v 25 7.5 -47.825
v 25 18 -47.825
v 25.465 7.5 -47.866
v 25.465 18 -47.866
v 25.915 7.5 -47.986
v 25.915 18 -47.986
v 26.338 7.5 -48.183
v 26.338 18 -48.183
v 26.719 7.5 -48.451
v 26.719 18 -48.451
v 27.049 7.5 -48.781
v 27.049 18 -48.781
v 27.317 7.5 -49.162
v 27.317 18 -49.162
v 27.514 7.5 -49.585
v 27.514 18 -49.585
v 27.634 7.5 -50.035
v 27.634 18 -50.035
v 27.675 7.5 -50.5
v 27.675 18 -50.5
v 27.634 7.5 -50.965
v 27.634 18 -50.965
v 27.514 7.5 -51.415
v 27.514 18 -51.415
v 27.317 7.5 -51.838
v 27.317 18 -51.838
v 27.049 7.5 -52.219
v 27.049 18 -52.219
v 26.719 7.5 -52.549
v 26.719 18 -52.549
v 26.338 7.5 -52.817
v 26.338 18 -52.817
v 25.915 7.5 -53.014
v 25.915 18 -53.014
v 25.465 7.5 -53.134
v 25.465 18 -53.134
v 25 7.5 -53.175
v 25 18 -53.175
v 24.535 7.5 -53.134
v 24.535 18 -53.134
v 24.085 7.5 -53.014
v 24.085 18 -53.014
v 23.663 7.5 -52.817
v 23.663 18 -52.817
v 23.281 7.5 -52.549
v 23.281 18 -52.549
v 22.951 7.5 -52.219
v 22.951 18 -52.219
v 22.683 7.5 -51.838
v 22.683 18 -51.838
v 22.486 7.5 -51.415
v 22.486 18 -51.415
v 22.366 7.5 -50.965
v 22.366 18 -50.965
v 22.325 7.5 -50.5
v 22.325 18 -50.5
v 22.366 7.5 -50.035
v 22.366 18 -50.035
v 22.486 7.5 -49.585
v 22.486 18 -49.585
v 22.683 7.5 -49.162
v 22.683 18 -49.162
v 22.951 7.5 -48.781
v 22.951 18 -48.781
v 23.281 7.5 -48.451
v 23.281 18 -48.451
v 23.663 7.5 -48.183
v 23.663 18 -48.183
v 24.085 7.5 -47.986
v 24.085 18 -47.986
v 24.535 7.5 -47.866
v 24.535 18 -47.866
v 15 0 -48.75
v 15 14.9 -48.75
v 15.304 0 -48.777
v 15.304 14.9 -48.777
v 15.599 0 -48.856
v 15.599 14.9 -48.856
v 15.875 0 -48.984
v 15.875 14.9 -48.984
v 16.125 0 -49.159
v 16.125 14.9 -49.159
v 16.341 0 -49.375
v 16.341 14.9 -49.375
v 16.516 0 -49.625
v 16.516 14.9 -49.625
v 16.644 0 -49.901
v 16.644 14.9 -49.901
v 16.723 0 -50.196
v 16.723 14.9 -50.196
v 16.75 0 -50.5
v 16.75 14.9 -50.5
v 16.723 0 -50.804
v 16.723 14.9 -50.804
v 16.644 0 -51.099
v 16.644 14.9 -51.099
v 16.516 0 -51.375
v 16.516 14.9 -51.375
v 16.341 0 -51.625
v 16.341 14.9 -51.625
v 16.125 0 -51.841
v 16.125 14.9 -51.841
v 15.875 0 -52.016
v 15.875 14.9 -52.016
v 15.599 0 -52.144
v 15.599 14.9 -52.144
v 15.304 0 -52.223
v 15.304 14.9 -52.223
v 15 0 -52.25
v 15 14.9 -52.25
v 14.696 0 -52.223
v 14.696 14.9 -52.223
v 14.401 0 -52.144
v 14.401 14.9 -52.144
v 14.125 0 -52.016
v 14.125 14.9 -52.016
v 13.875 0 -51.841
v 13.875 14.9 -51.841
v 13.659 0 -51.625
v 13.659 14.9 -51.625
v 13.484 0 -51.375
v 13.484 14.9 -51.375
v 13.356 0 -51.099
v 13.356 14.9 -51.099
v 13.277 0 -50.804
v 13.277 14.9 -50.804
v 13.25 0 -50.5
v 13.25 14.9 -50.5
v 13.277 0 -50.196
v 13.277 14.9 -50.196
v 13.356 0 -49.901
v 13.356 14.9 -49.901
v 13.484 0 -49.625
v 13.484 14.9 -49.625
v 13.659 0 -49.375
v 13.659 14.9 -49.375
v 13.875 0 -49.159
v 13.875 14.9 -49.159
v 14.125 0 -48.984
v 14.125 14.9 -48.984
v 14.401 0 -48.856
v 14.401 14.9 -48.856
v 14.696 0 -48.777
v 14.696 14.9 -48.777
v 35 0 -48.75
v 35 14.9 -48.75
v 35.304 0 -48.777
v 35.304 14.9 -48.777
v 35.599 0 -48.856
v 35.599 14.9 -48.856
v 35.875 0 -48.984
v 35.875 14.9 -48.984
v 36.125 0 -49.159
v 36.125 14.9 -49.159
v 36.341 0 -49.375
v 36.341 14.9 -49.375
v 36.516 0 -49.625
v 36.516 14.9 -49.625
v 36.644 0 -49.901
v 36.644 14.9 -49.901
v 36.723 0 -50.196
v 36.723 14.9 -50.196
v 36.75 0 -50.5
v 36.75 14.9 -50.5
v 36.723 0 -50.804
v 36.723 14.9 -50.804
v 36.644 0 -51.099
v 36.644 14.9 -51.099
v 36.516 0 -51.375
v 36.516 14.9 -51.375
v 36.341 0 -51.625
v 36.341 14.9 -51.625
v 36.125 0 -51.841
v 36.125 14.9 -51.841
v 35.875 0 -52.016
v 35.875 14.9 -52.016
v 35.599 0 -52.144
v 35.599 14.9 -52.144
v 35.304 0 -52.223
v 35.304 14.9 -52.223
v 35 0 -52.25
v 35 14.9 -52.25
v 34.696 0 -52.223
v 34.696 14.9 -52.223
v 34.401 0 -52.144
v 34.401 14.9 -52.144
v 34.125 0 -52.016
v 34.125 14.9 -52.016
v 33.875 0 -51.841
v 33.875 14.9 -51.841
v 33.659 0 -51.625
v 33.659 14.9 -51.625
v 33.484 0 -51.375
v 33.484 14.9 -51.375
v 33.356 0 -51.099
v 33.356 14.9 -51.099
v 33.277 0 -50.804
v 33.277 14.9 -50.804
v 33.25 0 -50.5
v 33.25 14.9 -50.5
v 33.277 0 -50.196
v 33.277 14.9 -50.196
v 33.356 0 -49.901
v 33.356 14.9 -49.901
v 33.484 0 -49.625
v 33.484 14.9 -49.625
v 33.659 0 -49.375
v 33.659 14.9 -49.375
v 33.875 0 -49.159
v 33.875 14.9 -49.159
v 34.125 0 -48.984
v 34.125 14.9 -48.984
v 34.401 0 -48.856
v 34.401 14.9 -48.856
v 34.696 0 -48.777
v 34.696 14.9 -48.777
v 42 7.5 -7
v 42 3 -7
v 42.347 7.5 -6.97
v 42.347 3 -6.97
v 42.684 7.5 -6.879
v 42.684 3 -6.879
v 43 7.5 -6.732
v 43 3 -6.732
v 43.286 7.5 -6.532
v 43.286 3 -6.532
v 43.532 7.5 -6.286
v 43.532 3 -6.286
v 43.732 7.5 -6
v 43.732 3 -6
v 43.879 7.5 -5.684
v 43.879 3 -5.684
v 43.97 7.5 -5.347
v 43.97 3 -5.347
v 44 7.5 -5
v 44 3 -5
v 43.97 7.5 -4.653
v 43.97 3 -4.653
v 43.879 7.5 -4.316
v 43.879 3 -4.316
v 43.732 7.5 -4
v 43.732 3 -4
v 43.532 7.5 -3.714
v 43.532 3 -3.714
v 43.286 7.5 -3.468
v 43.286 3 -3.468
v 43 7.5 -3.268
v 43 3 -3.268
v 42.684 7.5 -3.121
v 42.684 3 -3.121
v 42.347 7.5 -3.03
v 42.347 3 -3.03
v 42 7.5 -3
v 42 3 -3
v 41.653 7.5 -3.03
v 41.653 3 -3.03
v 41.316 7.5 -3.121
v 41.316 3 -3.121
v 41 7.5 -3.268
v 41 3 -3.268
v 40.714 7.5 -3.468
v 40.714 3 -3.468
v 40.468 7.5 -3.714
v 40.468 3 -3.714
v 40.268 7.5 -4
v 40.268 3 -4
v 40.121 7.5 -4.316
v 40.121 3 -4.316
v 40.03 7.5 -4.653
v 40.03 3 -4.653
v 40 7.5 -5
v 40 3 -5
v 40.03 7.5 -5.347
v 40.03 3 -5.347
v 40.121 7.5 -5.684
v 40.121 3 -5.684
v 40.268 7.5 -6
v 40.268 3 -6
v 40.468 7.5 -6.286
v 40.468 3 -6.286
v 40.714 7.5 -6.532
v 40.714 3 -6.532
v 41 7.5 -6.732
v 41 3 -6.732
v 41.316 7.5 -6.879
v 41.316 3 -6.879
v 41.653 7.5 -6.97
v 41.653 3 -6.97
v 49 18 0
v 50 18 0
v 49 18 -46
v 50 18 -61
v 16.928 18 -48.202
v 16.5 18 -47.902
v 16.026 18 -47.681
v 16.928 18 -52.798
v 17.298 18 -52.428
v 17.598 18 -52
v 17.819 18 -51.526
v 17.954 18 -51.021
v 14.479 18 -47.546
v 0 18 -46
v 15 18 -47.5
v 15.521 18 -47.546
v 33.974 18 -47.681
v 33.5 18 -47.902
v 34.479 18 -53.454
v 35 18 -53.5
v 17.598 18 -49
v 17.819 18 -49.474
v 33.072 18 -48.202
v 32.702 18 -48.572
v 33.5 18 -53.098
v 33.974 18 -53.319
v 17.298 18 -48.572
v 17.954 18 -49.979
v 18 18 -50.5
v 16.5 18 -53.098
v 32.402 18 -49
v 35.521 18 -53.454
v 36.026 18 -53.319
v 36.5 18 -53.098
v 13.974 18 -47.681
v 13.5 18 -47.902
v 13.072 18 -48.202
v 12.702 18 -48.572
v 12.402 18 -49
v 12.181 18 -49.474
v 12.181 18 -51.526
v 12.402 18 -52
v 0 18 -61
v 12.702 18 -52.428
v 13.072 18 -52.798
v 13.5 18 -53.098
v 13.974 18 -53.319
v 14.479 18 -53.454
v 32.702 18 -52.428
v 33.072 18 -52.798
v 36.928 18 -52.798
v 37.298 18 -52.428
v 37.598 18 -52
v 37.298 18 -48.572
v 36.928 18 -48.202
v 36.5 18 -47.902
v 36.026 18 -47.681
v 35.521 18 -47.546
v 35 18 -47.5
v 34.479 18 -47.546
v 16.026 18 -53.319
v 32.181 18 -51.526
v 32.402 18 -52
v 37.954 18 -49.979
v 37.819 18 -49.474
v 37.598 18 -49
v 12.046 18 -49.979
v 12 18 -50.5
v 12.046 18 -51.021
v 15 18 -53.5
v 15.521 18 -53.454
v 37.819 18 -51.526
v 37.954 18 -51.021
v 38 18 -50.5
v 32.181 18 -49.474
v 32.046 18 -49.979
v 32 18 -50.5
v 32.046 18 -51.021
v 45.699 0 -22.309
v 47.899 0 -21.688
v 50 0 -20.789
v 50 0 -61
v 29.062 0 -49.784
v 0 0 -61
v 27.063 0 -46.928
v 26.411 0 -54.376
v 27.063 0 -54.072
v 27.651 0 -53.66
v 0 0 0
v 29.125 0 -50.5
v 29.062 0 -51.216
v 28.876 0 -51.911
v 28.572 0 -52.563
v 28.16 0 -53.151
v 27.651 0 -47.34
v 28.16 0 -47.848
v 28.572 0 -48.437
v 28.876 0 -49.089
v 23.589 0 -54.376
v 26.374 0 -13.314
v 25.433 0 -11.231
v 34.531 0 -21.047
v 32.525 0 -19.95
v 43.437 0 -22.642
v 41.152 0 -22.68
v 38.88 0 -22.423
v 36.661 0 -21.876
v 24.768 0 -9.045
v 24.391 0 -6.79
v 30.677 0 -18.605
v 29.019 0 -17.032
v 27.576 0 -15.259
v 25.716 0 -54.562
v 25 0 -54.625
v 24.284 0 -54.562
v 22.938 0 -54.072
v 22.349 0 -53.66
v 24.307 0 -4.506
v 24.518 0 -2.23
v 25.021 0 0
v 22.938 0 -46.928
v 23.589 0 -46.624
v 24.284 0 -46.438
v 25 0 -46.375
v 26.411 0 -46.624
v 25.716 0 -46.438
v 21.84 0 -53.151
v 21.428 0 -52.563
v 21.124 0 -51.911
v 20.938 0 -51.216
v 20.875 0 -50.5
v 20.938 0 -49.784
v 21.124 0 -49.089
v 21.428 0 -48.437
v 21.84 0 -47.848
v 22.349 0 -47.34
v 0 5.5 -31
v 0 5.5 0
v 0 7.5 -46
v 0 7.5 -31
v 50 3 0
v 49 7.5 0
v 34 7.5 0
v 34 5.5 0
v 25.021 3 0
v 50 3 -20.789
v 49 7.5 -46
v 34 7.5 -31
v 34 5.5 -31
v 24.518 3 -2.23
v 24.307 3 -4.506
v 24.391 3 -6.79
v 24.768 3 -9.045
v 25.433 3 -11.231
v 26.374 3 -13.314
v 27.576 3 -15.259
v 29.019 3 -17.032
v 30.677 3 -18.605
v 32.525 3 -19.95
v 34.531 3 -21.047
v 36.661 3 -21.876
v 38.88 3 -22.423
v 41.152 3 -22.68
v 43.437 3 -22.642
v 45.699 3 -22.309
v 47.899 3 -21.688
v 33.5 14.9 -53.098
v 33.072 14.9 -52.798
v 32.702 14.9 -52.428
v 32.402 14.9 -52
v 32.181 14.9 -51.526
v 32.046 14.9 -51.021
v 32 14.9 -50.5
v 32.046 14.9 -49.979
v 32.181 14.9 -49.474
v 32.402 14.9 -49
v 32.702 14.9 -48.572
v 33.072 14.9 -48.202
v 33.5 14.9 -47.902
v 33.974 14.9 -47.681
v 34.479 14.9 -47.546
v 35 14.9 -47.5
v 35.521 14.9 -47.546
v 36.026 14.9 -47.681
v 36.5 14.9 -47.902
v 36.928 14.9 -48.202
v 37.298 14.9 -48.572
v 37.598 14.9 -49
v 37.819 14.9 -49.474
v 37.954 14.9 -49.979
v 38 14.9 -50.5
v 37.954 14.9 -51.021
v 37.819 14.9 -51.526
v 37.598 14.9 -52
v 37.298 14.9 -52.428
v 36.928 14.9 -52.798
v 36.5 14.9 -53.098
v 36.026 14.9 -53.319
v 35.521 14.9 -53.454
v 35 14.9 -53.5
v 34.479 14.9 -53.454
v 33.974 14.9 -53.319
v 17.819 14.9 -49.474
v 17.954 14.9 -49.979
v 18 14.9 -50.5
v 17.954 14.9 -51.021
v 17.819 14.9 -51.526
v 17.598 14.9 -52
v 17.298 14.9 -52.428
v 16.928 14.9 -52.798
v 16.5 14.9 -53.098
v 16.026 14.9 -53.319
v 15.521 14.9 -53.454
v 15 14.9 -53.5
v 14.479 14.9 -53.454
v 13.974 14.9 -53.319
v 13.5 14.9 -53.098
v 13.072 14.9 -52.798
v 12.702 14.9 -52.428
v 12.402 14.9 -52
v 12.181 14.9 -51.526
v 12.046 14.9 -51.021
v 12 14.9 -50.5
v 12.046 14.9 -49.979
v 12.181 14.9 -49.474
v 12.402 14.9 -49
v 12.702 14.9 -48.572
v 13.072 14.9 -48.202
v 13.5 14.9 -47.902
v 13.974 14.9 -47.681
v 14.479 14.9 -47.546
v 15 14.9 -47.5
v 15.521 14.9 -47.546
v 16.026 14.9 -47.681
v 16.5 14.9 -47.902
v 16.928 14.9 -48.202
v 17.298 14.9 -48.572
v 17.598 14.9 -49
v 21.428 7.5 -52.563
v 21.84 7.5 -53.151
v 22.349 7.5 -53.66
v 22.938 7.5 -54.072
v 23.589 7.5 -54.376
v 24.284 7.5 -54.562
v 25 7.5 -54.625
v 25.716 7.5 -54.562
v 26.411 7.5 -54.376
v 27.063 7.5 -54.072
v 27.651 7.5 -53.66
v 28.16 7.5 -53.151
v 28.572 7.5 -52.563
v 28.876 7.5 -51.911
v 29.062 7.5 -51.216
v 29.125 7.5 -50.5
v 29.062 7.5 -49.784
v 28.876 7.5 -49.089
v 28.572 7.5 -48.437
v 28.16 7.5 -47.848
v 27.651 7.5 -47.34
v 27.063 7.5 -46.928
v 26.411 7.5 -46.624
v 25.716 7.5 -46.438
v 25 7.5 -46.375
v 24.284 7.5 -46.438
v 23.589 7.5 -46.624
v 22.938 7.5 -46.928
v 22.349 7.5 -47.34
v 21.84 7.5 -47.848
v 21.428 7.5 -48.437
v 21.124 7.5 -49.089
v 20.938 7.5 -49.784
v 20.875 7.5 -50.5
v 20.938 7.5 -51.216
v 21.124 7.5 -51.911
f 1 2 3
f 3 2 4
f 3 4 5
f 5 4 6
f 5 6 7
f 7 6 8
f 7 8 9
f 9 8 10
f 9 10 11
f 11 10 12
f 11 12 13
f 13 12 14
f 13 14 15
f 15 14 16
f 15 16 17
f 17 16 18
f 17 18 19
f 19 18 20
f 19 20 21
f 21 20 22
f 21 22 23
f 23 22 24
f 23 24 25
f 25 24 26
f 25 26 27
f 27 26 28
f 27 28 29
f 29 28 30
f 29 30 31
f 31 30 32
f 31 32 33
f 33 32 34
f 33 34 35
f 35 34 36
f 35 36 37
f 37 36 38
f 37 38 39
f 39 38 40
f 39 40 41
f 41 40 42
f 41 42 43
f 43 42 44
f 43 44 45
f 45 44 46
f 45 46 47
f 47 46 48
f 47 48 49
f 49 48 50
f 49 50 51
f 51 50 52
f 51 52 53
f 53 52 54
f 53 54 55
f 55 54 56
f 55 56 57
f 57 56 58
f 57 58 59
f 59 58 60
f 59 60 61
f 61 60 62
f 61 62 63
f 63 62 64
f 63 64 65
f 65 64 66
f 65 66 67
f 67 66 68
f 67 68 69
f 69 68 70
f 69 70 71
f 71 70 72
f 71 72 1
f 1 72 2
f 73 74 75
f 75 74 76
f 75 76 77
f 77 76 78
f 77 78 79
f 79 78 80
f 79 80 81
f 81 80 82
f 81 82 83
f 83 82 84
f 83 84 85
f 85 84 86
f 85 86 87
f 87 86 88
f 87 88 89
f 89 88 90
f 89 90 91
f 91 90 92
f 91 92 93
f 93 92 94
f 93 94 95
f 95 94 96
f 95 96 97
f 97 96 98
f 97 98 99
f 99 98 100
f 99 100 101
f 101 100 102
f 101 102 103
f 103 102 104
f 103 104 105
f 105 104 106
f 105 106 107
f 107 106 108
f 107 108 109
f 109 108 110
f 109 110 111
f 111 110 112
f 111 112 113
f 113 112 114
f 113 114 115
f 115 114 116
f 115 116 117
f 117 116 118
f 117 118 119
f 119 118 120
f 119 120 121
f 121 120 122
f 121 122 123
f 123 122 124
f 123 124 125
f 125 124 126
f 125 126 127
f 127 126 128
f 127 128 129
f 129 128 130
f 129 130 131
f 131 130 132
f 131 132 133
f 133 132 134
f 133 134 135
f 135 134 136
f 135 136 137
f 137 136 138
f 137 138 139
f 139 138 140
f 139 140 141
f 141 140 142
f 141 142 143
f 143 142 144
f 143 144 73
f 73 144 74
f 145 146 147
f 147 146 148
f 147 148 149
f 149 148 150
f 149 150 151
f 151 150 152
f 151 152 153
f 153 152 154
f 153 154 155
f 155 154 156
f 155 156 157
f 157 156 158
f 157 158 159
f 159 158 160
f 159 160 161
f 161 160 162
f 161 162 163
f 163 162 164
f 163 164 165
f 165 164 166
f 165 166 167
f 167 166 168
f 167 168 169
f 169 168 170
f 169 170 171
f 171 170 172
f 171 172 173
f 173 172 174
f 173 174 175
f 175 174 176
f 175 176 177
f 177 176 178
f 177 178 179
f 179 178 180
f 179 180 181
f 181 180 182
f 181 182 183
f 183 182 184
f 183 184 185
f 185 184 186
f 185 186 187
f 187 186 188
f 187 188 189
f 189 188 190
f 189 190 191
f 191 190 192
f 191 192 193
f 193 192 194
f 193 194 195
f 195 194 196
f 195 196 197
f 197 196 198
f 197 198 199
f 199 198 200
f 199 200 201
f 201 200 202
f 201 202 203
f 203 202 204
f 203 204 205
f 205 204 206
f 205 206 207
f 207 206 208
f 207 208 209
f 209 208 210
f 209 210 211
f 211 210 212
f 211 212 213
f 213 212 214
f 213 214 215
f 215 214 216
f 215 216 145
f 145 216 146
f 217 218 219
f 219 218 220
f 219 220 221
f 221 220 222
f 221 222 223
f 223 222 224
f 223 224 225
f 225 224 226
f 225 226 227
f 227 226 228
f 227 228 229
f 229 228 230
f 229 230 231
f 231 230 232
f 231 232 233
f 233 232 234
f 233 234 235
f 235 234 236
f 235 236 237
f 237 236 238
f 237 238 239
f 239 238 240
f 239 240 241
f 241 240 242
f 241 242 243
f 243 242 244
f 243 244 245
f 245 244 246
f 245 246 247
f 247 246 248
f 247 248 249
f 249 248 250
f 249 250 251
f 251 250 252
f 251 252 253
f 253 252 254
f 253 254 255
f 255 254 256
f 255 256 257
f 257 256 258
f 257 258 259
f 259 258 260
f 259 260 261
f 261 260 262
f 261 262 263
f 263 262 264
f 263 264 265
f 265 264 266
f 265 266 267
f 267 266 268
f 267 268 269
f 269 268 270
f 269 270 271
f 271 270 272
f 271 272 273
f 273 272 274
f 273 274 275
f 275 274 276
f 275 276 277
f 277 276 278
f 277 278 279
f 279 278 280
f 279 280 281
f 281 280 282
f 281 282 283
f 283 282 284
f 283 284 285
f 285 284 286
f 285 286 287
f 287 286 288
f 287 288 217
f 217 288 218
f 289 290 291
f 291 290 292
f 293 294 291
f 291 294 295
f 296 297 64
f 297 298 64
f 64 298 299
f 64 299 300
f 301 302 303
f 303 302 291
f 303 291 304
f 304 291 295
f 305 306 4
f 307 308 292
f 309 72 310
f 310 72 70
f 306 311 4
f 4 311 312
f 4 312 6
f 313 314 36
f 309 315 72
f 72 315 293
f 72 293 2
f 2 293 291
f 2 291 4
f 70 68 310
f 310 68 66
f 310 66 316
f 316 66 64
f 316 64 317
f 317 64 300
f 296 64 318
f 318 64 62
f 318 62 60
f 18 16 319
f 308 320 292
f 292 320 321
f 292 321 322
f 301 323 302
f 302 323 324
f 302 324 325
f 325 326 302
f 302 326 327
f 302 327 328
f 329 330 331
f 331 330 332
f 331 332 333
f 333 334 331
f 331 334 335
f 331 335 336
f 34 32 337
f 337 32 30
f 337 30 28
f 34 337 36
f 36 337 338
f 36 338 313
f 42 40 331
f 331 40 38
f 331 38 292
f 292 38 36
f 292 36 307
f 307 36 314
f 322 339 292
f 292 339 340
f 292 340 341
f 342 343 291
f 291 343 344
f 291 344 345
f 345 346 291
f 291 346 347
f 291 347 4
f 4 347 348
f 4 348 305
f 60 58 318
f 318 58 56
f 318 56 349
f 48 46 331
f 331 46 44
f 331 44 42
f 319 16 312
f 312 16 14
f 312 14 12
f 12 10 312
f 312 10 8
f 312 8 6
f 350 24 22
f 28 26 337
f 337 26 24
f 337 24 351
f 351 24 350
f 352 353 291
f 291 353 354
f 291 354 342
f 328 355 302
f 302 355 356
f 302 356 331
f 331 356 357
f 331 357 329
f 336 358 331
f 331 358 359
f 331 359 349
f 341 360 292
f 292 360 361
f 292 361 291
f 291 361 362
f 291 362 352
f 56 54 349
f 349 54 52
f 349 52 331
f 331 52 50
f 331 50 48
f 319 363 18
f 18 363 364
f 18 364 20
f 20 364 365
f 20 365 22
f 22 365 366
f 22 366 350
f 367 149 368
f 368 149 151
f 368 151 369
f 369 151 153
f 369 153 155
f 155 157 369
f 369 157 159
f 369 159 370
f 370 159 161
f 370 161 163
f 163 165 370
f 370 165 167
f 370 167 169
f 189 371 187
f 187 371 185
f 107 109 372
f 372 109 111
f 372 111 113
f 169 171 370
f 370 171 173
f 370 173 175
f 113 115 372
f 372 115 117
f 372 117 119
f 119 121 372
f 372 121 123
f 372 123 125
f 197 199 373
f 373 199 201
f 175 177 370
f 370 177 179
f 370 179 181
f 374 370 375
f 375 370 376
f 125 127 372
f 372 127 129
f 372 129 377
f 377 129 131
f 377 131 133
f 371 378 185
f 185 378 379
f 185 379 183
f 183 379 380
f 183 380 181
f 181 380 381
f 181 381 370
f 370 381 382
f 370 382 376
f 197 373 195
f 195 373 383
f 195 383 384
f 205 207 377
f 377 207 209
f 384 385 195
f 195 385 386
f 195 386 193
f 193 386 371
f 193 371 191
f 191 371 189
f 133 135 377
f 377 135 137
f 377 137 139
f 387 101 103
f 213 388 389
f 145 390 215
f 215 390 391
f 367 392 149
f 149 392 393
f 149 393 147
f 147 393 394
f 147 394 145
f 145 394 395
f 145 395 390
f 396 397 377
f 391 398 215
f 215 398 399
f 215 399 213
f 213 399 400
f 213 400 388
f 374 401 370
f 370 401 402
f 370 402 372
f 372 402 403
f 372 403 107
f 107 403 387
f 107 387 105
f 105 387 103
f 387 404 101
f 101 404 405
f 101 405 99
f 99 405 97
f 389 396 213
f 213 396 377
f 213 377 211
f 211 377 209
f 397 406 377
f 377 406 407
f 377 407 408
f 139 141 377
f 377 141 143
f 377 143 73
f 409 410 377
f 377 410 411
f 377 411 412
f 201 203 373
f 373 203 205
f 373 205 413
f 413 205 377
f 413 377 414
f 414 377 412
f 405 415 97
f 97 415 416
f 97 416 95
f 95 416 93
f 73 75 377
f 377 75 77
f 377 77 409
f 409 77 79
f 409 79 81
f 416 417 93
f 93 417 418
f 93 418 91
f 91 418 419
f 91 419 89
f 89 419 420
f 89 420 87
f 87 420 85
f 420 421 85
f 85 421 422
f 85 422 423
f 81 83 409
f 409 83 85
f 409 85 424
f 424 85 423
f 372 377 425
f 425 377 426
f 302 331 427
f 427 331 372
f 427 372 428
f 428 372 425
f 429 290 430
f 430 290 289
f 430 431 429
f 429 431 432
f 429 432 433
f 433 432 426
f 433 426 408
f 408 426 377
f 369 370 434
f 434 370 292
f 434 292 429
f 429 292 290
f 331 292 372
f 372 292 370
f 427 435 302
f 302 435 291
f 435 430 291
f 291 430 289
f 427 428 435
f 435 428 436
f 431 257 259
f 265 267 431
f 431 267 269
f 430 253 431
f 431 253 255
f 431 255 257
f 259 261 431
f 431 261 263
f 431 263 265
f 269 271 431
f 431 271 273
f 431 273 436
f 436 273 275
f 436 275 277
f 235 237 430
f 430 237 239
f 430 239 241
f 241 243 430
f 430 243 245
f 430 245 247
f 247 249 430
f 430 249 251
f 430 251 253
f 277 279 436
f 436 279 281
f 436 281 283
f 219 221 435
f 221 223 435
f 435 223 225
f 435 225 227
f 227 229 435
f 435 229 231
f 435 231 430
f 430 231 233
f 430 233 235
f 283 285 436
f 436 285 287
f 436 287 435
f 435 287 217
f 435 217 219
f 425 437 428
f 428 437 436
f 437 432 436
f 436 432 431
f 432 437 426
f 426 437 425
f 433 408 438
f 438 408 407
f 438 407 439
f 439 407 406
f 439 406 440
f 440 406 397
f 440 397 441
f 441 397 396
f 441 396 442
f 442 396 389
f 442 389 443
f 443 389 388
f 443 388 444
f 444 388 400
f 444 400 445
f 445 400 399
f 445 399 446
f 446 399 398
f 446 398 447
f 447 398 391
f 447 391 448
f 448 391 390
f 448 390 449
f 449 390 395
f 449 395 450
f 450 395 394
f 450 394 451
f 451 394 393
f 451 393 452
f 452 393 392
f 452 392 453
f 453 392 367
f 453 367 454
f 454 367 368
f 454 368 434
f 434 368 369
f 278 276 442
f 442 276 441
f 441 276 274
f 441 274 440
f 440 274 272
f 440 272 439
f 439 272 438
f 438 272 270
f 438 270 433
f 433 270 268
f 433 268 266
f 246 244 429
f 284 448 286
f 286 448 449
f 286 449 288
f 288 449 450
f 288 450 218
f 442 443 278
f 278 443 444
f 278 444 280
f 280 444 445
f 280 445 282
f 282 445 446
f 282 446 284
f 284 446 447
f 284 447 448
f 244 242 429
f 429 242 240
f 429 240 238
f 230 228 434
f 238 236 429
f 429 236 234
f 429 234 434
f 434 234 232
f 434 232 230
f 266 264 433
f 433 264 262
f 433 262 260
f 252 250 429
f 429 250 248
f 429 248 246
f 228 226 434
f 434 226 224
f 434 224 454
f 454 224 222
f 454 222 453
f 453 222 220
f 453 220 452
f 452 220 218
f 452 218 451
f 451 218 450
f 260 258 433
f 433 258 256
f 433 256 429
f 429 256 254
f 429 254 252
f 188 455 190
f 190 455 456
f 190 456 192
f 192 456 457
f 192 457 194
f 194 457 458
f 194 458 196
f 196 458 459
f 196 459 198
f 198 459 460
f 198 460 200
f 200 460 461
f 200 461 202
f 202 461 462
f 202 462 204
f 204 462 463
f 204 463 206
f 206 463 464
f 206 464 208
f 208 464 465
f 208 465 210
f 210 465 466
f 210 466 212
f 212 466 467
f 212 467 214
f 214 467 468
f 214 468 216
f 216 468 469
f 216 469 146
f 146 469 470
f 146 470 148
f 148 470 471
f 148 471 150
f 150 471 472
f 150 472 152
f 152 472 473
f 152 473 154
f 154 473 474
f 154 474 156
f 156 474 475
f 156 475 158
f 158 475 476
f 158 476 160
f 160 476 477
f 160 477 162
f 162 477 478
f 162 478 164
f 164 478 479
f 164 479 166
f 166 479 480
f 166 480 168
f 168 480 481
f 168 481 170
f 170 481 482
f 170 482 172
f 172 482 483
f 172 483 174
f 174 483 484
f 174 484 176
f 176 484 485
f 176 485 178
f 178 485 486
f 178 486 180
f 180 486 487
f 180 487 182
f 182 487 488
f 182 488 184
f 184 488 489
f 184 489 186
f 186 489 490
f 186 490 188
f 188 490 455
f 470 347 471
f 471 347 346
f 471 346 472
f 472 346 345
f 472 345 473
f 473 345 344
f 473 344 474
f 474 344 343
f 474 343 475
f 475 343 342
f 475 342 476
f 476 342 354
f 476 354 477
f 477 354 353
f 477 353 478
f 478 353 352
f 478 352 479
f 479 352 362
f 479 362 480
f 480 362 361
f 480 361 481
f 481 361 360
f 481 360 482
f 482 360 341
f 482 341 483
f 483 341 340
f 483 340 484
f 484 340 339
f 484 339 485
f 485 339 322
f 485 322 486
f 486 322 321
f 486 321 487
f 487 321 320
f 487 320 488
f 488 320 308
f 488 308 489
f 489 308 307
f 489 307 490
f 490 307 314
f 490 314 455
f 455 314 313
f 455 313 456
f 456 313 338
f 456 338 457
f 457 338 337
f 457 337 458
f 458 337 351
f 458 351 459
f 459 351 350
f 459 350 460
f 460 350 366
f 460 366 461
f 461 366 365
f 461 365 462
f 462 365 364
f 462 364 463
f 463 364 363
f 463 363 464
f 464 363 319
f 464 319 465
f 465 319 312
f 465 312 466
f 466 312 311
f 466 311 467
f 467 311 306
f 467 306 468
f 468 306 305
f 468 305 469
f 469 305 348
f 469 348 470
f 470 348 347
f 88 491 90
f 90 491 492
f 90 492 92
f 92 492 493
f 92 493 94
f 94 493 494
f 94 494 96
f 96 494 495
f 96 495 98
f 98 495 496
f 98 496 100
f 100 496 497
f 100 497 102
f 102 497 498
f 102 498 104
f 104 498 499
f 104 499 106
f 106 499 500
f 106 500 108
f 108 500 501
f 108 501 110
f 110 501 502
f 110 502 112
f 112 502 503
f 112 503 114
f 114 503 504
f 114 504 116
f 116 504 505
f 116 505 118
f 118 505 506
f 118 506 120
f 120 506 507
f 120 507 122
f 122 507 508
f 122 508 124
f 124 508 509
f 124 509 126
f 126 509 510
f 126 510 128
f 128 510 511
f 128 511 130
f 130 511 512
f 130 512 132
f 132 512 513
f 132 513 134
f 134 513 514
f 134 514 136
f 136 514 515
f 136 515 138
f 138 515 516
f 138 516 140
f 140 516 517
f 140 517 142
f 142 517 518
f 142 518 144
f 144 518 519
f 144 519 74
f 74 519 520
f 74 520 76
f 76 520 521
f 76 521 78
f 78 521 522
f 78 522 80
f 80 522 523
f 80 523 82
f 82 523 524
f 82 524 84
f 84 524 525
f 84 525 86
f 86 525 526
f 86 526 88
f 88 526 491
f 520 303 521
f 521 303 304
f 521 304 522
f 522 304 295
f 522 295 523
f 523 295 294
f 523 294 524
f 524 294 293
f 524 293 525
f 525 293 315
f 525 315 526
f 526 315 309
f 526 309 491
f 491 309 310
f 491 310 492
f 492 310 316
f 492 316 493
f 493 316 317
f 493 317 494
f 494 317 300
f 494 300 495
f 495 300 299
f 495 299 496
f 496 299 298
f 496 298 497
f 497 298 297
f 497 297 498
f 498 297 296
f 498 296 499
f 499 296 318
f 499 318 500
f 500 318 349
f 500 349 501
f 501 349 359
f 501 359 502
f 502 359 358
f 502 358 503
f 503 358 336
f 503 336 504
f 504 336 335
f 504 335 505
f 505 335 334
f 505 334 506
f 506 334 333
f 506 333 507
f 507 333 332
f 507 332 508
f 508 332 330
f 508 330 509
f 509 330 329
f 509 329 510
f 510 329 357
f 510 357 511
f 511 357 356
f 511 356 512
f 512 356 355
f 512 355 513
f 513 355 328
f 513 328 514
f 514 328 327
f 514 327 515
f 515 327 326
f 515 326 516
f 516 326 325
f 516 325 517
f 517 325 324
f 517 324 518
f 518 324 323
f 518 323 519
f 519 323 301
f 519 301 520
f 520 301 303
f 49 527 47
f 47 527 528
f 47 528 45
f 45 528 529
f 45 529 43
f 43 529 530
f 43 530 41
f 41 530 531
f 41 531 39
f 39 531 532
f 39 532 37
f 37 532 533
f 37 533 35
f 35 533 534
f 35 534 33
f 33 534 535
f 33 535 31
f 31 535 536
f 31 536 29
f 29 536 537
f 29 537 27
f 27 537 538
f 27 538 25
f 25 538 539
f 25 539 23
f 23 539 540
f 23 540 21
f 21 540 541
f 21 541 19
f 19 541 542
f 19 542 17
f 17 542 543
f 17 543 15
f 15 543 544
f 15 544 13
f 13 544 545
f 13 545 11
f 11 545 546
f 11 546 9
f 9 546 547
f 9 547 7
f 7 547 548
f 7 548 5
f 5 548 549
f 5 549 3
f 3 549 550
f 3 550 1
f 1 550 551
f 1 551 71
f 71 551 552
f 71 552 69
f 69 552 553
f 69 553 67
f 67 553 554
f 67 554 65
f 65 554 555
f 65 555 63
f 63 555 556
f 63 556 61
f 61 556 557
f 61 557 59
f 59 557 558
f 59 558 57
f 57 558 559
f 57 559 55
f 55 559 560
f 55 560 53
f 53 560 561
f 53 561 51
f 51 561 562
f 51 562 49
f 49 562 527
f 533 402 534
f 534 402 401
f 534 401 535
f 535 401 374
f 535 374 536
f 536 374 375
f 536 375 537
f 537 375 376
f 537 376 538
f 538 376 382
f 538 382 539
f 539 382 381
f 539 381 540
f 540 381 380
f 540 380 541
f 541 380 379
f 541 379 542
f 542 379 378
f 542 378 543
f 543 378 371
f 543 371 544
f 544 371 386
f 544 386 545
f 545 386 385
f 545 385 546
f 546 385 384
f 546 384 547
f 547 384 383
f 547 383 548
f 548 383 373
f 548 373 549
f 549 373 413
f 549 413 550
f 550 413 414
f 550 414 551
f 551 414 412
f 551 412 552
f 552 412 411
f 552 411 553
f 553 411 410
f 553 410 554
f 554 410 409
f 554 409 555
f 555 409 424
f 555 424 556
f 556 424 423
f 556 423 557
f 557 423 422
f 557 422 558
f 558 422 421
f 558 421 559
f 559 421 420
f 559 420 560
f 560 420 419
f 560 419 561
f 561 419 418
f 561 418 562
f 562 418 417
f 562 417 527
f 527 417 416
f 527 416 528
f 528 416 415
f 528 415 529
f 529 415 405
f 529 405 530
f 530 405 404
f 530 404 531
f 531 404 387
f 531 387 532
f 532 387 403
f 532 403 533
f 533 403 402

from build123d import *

# Parameters (mm, degrees)
OUTLINESKETCH2_W                               = 50
OUTLINESKETCH2_H                               = 61
OUTLINESKETCH2_R                               = 2
OUTLINEBOSS_EXTRUDE1_DEPTH                     = 18
BUILDPLATECUTOUTSKETCH1_W                      = 49
BUILDPLATECUTOUTSKETCH1_H                      = 46
BUILDPLATECUTOUTCUT_EXTRUDE7_DEPTH             = 10.5
HEATMATCUTSKETCH3_W                            = 34
HEATMATCUTSKETCH3_H                            = 31
HEATMATCUT_EXTRUDE8_DEPTH                      = 2
BALLJOINTCUT_EXTRUDE9_DEPTH                    = 3
SKETCH1_R                                      = 1.75
SKETCH1_R_2                                    = 2.675
ZENDSTOPSWITCHMOUNTHOLESCUT_EXTRUDE1_DEPTH     = 81.901174281
SKETCH3_R                                      = 3
ZENDSTOPSWITCHMOUNTBOREHOLESCUT_EXTRUDE2_DEPTH = 3.1
SKETCH4_R                                      = 4.125
ZENDSTOPSWITCHCONNINGTOWERTBORECUT_EXTRU_DEPTH = 7.5


with BuildPart() as part:
    # OutlineSketch2 → OutlineBoss-Extrude1 (new body)
    with BuildSketch(Plane(origin=(0, 0, 0), x_dir=(1, 0, 0), z_dir=(0, 1, 0))):
        with Locations((25, 30.5)):
            Rectangle(OUTLINESKETCH2_W, OUTLINESKETCH2_H)
        with Locations(Location((42, 5, 0), (0, 0, 270))):
            Circle(OUTLINESKETCH2_R, mode=Mode.SUBTRACT)
    extrude(amount=OUTLINEBOSS_EXTRUDE1_DEPTH)

    # BuildPlateCutoutSketch1 → BuildPlateCutoutCut-Extrude7 (cut)
    with BuildSketch(Plane(origin=(0, 18, 0), x_dir=(1, 0, 0), z_dir=(0, 1, 0))):
        with Locations((24.5, 23)):
            Rectangle(BUILDPLATECUTOUTSKETCH1_W, BUILDPLATECUTOUTSKETCH1_H)
    extrude(amount=-BUILDPLATECUTOUTCUT_EXTRUDE7_DEPTH, mode=Mode.SUBTRACT)

    # HeatMatCutSketch3 → HeatMatCut-Extrude8 (cut)
    with BuildSketch(Plane(origin=(0, 7.5, 0), x_dir=(1, 0, 0), z_dir=(0, 1, 0))):
        with Locations((17, 15.5)):
            Rectangle(HEATMATCUTSKETCH3_W, HEATMATCUTSKETCH3_H)
    extrude(amount=-HEATMATCUT_EXTRUDE8_DEPTH, mode=Mode.SUBTRACT)

    # BallJointCutoutSketch4 → BallJointCut-Extrude9 (cut)
    with BuildSketch(Plane.XZ):
        with BuildLine():
            Line((25.020895194, 0), (50, 0))
            Line((50, 0), (50, -20.788920166))
            ThreePointArc((50, -20.788920166), (30.677417203, -18.604746187), (25.020895194, 0))
        make_face()
    extrude(amount=-BALLJOINTCUT_EXTRUDE9_DEPTH, mode=Mode.SUBTRACT)

    # Sketch1 → ZEndStopSwitchMountHolesCut-Extrude1 (cut, through all)
    with BuildSketch(Plane(origin=(0, 18, 0), x_dir=(1, 0, 0), z_dir=(0, 1, 0))):
        with Locations(Location((35, 50.5, 0), (0, 0, 270))):
            Circle(SKETCH1_R)
        with Locations(Location((25, 50.5, 0), (0, 0, 270))):
            Circle(SKETCH1_R_2)
        with Locations(Location((15, 50.5, 0), (0, 0, 270))):
            Circle(SKETCH1_R)
    extrude(amount=-ZENDSTOPSWITCHMOUNTHOLESCUT_EXTRUDE1_DEPTH, mode=Mode.SUBTRACT)

    # Sketch3 → ZEndStopSwitchMountBoreHolesCut-Extrude2 (cut)
    with BuildSketch(Plane(origin=(0, 18, 0), x_dir=(1, 0, 0), z_dir=(0, 1, 0))):
        with Locations(Location((35, 50.5, 0), (0, 0, 270))):
            Circle(SKETCH3_R)
        with Locations(Location((15, 50.5, 0), (0, 0, 270))):
            Circle(SKETCH3_R)
    extrude(amount=-ZENDSTOPSWITCHMOUNTBOREHOLESCUT_EXTRUDE2_DEPTH, mode=Mode.SUBTRACT)

    # Sketch4 → ZEndStopSwitchConningTowertBoreCut-Extrude1 (cut)
    with BuildSketch(Plane.XZ):
        with Locations(Location((25, -50.5, 0), (0, 0, 270))):
            Circle(SKETCH4_R)
    extrude(amount=-ZENDSTOPSWITCHCONNINGTOWERTBORECUT_EXTRU_DEPTH, mode=Mode.SUBTRACT)


solid = part.part
